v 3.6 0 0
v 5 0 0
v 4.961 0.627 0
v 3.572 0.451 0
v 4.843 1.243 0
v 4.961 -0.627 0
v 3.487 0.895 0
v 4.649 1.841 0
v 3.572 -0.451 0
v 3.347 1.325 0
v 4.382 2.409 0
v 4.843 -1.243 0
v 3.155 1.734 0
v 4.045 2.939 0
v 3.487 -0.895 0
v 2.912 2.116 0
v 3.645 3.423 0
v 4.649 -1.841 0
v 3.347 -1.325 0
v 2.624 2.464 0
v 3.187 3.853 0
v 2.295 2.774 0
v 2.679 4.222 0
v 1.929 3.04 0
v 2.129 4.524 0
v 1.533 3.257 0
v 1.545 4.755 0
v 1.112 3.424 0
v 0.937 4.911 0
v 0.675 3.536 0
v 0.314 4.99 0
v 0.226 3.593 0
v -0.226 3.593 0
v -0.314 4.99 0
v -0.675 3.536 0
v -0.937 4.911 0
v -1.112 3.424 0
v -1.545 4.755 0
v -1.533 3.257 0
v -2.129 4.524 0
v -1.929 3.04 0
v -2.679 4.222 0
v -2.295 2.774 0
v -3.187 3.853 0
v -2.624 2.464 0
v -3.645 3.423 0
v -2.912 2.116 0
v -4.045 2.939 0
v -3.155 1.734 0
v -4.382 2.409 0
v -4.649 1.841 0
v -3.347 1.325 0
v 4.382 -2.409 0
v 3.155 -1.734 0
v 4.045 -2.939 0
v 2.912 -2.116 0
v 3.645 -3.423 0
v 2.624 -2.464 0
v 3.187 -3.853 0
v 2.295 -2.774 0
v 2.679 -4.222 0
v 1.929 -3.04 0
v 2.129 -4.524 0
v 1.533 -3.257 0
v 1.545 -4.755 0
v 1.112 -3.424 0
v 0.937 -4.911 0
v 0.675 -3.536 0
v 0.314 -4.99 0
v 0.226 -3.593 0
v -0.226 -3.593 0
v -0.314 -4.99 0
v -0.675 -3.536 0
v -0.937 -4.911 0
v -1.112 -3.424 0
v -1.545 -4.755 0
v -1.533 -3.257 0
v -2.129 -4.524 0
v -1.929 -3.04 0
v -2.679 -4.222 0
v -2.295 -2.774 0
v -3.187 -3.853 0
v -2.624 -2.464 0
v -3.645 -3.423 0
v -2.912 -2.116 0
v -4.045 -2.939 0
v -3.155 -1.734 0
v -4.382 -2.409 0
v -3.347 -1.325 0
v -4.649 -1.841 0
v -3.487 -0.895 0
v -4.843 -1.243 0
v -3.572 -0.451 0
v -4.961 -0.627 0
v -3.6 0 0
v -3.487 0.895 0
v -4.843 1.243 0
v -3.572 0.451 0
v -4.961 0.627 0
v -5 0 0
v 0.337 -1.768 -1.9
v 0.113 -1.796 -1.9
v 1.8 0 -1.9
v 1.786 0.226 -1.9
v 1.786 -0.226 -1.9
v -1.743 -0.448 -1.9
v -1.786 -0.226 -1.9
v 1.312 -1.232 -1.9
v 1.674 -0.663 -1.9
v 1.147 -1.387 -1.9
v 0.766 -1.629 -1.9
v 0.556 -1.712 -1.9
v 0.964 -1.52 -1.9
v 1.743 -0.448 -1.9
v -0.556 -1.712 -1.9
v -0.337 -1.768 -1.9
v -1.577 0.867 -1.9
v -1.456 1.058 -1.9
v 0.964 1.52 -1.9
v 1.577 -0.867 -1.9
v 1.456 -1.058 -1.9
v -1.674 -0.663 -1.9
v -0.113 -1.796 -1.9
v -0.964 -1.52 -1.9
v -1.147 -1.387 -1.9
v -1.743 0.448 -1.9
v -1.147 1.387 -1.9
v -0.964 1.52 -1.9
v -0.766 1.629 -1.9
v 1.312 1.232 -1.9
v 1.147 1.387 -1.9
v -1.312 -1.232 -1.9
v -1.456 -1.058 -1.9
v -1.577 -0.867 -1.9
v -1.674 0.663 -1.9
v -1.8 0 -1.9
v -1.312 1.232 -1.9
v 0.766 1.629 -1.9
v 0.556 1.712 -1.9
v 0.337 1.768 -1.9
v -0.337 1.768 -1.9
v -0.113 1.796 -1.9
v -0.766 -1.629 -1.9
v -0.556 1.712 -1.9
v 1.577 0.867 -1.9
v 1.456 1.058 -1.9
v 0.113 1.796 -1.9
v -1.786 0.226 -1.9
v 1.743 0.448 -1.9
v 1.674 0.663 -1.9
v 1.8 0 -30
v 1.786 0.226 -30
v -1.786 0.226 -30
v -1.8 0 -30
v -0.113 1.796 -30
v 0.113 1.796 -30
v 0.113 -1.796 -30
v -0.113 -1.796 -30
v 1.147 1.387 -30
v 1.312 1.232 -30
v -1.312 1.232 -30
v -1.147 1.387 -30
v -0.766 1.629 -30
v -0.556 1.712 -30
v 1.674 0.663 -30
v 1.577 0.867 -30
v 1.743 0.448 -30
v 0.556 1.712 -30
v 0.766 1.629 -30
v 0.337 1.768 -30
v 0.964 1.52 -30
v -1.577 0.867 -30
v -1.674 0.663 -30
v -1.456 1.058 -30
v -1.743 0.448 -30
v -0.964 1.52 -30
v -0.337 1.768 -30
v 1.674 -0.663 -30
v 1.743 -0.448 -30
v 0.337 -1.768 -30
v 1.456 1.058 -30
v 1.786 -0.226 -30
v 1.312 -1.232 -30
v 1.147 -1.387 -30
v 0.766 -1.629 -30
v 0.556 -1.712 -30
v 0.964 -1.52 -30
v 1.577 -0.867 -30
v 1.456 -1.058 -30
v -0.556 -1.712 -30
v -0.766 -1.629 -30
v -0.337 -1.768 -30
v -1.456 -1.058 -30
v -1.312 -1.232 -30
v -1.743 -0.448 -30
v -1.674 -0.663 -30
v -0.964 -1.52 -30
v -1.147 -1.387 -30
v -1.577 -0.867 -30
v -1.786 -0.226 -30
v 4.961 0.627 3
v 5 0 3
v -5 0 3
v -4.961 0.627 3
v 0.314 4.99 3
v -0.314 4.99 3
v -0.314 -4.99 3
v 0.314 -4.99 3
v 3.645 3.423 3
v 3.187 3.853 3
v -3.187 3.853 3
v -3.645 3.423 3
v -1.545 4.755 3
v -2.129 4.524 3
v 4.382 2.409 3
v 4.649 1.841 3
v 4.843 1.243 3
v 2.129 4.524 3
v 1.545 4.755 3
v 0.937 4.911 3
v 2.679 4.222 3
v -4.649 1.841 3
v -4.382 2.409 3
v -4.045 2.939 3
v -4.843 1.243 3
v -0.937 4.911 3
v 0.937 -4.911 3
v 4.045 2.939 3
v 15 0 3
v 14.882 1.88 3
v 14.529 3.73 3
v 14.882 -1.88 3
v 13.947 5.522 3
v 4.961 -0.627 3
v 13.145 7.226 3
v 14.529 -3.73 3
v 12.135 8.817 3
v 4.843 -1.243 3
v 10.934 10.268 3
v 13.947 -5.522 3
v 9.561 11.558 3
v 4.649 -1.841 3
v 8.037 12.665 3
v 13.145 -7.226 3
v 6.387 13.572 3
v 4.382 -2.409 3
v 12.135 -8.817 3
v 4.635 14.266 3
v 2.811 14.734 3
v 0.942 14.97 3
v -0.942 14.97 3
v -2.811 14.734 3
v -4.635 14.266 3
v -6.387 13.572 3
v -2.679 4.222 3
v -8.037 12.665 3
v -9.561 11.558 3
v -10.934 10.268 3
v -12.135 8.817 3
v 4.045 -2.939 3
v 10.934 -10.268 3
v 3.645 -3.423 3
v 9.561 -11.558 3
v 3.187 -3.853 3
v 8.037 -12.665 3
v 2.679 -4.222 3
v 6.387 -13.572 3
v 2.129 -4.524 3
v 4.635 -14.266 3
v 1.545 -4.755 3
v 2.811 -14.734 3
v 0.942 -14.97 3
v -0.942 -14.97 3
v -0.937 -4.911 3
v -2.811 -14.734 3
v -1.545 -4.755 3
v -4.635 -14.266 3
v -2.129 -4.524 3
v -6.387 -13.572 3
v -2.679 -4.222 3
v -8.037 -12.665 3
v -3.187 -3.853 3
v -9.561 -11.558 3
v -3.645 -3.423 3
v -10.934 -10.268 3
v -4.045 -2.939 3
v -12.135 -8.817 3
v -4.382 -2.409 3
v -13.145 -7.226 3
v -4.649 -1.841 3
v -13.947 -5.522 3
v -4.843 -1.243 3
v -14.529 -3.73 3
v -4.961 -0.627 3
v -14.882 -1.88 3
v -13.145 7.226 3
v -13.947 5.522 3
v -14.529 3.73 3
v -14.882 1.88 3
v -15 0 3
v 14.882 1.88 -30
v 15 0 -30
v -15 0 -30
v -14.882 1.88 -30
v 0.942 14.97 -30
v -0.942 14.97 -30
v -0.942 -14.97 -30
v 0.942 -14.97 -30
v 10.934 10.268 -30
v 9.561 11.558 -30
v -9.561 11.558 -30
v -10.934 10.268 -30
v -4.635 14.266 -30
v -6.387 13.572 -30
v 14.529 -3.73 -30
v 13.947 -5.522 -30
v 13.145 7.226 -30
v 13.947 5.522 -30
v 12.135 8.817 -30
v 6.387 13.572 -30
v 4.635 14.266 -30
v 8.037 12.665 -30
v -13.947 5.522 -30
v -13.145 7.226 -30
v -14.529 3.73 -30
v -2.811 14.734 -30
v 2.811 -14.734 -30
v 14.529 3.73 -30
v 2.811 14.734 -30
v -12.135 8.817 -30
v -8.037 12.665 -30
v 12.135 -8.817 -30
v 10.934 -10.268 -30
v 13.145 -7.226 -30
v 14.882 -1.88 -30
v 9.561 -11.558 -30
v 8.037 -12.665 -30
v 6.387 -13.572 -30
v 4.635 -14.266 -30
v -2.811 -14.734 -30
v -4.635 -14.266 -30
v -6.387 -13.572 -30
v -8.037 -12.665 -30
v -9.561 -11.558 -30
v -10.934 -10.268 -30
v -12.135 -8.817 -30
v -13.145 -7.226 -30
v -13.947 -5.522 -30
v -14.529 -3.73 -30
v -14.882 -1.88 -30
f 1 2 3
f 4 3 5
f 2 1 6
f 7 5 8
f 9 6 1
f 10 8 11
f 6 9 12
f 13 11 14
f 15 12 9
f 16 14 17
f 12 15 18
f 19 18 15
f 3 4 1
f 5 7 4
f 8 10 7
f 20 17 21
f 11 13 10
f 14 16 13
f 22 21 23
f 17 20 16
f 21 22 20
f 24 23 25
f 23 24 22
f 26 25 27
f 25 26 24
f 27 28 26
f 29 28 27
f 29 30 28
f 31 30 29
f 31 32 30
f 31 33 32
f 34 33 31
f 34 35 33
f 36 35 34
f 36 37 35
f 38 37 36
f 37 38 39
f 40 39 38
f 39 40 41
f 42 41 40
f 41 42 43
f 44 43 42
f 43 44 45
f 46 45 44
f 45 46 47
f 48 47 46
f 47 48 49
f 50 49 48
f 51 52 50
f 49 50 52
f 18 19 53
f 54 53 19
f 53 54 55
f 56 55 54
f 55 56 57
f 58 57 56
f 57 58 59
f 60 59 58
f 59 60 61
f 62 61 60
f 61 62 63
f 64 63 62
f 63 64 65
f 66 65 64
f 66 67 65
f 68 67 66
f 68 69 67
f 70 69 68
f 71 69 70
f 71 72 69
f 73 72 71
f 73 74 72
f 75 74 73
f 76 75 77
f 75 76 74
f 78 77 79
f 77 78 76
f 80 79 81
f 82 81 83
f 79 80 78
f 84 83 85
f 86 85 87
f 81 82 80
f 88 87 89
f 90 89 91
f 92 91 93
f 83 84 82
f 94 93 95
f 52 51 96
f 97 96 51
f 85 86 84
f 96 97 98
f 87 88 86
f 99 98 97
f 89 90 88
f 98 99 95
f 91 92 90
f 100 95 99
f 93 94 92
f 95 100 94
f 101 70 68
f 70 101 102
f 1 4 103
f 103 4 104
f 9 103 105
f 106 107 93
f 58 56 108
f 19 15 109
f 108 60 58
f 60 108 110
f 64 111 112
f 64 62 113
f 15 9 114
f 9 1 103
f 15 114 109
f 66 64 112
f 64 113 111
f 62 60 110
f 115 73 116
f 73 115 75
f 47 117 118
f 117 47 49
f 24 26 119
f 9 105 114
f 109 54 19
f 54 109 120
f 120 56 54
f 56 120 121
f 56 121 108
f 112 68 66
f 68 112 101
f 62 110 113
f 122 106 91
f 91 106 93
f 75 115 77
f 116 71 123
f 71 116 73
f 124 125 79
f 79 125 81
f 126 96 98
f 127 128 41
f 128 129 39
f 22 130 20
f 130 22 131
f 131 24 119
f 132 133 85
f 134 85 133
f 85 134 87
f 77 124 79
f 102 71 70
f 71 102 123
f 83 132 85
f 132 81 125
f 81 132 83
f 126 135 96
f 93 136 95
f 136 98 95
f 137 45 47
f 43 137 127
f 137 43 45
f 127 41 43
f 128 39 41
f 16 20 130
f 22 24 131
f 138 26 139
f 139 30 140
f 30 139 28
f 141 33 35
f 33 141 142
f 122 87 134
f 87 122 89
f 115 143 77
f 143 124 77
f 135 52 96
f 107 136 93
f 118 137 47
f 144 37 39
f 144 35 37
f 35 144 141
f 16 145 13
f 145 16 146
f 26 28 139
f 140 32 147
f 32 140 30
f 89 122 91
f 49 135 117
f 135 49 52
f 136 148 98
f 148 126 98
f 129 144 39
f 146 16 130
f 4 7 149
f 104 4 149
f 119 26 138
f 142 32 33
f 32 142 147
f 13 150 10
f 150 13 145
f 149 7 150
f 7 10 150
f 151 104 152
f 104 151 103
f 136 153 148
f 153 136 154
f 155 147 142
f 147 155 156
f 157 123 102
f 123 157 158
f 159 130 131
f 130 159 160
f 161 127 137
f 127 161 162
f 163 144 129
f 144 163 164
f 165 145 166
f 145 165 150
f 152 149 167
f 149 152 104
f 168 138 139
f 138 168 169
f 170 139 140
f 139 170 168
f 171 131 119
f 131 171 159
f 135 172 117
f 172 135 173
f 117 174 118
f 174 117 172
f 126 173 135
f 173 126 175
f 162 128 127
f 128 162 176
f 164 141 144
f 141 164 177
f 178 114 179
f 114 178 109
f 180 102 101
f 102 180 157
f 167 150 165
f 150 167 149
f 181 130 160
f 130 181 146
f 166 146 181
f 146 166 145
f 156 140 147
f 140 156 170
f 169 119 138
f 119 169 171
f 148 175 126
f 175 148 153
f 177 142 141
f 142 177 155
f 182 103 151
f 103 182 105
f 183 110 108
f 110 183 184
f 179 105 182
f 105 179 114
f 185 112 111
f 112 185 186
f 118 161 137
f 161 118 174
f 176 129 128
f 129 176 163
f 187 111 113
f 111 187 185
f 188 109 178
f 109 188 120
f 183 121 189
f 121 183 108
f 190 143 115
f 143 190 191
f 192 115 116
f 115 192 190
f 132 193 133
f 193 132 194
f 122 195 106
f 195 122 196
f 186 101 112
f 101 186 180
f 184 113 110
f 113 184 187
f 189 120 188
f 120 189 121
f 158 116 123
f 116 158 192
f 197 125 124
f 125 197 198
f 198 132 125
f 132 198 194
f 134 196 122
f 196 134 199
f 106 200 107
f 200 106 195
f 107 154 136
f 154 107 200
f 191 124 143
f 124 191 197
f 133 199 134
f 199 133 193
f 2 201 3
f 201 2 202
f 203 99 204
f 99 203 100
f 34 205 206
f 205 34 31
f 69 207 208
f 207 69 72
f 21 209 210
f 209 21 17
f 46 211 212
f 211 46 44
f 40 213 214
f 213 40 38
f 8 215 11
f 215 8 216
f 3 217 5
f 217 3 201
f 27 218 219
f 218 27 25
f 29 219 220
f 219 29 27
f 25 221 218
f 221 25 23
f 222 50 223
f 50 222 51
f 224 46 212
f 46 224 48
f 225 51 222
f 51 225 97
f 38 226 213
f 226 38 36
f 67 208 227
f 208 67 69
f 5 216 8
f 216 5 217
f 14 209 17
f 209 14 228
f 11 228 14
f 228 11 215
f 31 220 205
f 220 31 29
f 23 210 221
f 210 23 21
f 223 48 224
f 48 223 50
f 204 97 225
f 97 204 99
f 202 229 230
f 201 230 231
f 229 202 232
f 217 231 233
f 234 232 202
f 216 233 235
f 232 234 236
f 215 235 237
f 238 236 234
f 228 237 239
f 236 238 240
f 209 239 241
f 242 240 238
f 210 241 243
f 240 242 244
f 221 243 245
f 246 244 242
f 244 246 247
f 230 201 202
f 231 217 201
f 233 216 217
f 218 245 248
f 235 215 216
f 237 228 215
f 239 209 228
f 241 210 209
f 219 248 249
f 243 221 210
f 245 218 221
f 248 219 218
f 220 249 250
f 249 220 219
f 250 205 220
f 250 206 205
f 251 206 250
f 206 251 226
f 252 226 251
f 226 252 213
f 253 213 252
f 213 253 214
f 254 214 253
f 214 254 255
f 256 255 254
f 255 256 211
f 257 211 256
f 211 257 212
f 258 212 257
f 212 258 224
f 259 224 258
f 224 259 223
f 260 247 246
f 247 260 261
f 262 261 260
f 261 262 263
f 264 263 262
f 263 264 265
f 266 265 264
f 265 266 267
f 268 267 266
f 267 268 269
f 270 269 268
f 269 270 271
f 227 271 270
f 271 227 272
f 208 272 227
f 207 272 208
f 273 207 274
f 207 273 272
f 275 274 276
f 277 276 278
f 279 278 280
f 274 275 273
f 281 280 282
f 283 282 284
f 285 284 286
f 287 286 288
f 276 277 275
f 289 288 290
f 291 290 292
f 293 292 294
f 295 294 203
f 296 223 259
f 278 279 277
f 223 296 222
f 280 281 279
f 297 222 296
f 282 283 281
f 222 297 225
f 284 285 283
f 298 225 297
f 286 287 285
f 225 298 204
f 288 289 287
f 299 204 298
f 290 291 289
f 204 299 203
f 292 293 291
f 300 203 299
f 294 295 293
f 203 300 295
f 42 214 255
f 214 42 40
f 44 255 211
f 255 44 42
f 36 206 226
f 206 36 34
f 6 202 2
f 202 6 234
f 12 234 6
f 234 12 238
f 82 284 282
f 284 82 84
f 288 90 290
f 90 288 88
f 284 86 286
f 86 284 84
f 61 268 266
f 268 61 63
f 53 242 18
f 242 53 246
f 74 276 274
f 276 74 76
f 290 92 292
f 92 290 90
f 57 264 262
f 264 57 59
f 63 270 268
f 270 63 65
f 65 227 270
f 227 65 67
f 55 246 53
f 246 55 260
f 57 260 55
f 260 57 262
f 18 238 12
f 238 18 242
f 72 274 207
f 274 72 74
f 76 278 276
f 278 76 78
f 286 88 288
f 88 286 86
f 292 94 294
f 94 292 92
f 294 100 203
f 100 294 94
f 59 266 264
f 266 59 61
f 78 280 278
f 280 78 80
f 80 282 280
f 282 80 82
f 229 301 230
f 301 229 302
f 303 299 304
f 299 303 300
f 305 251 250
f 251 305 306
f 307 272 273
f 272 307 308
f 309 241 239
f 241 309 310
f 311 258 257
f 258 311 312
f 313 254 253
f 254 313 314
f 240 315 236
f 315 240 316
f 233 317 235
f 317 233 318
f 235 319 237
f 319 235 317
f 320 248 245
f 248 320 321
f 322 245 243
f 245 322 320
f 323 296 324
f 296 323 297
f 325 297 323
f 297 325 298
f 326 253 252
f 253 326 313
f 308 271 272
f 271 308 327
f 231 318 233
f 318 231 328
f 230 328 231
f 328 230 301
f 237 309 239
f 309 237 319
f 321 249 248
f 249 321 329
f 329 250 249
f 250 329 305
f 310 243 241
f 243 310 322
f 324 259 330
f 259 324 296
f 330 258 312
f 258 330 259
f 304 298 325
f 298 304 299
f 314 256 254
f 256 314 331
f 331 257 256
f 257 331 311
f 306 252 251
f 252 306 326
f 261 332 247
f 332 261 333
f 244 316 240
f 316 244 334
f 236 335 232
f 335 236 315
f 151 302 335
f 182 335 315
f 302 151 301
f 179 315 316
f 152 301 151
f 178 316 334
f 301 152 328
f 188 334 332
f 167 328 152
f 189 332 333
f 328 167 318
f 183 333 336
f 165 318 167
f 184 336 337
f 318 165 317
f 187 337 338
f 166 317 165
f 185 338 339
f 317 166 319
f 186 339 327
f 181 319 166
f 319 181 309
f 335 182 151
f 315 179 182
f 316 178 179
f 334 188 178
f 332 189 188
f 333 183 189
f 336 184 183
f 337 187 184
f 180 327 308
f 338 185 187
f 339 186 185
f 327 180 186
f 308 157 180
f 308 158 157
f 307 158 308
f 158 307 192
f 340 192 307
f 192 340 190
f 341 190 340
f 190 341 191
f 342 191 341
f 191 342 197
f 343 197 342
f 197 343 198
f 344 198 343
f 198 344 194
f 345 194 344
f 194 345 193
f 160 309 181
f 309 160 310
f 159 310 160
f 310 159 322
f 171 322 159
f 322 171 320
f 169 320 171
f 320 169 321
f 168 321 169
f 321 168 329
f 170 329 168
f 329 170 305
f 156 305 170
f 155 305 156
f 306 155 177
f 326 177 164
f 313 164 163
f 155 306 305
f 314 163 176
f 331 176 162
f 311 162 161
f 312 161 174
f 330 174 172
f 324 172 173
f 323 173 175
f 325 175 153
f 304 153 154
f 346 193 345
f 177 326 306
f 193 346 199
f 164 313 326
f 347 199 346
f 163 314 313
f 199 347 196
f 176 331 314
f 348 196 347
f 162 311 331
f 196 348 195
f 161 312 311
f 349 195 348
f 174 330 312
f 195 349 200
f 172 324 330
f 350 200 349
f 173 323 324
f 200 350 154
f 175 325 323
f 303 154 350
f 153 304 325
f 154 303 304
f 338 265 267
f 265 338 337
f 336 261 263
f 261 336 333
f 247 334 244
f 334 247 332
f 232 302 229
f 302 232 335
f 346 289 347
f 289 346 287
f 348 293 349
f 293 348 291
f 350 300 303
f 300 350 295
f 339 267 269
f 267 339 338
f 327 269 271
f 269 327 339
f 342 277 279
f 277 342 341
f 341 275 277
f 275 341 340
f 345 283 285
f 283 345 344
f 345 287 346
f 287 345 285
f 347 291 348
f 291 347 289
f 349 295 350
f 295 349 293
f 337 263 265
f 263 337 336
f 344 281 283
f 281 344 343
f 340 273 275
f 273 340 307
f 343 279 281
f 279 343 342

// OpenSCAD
$fn = 50;

difference() {
	union() {
		translate(v = [0, 0, -30.0]) {
			cylinder(h = 33, r = 15.0);
		}
	}
	union() {
		translate(v = [0, 0, 0]) {
			rotate(a = [0, 0, 0]) {
				difference() {
					union() {
						translate(v = [0, 0, -33.0]) {
							cylinder(h = 33, r = 1.5);
						}
						translate(v = [0, 0, -1.9]) {
							cylinder(h = 1.9, r1 = 1.8, r2 = 3.6);
						}
						translate(v = [0, 0, -33.0]) {
							cylinder(h = 33, r = 1.8);
						}
						translate(v = [0, 0, -33.0]) {
							cylinder(h = 33, r = 1.5);
						}
					}
					union();
				}
			}
		}
		#cylinder(h = 3, r = 5.0);
	}
}
